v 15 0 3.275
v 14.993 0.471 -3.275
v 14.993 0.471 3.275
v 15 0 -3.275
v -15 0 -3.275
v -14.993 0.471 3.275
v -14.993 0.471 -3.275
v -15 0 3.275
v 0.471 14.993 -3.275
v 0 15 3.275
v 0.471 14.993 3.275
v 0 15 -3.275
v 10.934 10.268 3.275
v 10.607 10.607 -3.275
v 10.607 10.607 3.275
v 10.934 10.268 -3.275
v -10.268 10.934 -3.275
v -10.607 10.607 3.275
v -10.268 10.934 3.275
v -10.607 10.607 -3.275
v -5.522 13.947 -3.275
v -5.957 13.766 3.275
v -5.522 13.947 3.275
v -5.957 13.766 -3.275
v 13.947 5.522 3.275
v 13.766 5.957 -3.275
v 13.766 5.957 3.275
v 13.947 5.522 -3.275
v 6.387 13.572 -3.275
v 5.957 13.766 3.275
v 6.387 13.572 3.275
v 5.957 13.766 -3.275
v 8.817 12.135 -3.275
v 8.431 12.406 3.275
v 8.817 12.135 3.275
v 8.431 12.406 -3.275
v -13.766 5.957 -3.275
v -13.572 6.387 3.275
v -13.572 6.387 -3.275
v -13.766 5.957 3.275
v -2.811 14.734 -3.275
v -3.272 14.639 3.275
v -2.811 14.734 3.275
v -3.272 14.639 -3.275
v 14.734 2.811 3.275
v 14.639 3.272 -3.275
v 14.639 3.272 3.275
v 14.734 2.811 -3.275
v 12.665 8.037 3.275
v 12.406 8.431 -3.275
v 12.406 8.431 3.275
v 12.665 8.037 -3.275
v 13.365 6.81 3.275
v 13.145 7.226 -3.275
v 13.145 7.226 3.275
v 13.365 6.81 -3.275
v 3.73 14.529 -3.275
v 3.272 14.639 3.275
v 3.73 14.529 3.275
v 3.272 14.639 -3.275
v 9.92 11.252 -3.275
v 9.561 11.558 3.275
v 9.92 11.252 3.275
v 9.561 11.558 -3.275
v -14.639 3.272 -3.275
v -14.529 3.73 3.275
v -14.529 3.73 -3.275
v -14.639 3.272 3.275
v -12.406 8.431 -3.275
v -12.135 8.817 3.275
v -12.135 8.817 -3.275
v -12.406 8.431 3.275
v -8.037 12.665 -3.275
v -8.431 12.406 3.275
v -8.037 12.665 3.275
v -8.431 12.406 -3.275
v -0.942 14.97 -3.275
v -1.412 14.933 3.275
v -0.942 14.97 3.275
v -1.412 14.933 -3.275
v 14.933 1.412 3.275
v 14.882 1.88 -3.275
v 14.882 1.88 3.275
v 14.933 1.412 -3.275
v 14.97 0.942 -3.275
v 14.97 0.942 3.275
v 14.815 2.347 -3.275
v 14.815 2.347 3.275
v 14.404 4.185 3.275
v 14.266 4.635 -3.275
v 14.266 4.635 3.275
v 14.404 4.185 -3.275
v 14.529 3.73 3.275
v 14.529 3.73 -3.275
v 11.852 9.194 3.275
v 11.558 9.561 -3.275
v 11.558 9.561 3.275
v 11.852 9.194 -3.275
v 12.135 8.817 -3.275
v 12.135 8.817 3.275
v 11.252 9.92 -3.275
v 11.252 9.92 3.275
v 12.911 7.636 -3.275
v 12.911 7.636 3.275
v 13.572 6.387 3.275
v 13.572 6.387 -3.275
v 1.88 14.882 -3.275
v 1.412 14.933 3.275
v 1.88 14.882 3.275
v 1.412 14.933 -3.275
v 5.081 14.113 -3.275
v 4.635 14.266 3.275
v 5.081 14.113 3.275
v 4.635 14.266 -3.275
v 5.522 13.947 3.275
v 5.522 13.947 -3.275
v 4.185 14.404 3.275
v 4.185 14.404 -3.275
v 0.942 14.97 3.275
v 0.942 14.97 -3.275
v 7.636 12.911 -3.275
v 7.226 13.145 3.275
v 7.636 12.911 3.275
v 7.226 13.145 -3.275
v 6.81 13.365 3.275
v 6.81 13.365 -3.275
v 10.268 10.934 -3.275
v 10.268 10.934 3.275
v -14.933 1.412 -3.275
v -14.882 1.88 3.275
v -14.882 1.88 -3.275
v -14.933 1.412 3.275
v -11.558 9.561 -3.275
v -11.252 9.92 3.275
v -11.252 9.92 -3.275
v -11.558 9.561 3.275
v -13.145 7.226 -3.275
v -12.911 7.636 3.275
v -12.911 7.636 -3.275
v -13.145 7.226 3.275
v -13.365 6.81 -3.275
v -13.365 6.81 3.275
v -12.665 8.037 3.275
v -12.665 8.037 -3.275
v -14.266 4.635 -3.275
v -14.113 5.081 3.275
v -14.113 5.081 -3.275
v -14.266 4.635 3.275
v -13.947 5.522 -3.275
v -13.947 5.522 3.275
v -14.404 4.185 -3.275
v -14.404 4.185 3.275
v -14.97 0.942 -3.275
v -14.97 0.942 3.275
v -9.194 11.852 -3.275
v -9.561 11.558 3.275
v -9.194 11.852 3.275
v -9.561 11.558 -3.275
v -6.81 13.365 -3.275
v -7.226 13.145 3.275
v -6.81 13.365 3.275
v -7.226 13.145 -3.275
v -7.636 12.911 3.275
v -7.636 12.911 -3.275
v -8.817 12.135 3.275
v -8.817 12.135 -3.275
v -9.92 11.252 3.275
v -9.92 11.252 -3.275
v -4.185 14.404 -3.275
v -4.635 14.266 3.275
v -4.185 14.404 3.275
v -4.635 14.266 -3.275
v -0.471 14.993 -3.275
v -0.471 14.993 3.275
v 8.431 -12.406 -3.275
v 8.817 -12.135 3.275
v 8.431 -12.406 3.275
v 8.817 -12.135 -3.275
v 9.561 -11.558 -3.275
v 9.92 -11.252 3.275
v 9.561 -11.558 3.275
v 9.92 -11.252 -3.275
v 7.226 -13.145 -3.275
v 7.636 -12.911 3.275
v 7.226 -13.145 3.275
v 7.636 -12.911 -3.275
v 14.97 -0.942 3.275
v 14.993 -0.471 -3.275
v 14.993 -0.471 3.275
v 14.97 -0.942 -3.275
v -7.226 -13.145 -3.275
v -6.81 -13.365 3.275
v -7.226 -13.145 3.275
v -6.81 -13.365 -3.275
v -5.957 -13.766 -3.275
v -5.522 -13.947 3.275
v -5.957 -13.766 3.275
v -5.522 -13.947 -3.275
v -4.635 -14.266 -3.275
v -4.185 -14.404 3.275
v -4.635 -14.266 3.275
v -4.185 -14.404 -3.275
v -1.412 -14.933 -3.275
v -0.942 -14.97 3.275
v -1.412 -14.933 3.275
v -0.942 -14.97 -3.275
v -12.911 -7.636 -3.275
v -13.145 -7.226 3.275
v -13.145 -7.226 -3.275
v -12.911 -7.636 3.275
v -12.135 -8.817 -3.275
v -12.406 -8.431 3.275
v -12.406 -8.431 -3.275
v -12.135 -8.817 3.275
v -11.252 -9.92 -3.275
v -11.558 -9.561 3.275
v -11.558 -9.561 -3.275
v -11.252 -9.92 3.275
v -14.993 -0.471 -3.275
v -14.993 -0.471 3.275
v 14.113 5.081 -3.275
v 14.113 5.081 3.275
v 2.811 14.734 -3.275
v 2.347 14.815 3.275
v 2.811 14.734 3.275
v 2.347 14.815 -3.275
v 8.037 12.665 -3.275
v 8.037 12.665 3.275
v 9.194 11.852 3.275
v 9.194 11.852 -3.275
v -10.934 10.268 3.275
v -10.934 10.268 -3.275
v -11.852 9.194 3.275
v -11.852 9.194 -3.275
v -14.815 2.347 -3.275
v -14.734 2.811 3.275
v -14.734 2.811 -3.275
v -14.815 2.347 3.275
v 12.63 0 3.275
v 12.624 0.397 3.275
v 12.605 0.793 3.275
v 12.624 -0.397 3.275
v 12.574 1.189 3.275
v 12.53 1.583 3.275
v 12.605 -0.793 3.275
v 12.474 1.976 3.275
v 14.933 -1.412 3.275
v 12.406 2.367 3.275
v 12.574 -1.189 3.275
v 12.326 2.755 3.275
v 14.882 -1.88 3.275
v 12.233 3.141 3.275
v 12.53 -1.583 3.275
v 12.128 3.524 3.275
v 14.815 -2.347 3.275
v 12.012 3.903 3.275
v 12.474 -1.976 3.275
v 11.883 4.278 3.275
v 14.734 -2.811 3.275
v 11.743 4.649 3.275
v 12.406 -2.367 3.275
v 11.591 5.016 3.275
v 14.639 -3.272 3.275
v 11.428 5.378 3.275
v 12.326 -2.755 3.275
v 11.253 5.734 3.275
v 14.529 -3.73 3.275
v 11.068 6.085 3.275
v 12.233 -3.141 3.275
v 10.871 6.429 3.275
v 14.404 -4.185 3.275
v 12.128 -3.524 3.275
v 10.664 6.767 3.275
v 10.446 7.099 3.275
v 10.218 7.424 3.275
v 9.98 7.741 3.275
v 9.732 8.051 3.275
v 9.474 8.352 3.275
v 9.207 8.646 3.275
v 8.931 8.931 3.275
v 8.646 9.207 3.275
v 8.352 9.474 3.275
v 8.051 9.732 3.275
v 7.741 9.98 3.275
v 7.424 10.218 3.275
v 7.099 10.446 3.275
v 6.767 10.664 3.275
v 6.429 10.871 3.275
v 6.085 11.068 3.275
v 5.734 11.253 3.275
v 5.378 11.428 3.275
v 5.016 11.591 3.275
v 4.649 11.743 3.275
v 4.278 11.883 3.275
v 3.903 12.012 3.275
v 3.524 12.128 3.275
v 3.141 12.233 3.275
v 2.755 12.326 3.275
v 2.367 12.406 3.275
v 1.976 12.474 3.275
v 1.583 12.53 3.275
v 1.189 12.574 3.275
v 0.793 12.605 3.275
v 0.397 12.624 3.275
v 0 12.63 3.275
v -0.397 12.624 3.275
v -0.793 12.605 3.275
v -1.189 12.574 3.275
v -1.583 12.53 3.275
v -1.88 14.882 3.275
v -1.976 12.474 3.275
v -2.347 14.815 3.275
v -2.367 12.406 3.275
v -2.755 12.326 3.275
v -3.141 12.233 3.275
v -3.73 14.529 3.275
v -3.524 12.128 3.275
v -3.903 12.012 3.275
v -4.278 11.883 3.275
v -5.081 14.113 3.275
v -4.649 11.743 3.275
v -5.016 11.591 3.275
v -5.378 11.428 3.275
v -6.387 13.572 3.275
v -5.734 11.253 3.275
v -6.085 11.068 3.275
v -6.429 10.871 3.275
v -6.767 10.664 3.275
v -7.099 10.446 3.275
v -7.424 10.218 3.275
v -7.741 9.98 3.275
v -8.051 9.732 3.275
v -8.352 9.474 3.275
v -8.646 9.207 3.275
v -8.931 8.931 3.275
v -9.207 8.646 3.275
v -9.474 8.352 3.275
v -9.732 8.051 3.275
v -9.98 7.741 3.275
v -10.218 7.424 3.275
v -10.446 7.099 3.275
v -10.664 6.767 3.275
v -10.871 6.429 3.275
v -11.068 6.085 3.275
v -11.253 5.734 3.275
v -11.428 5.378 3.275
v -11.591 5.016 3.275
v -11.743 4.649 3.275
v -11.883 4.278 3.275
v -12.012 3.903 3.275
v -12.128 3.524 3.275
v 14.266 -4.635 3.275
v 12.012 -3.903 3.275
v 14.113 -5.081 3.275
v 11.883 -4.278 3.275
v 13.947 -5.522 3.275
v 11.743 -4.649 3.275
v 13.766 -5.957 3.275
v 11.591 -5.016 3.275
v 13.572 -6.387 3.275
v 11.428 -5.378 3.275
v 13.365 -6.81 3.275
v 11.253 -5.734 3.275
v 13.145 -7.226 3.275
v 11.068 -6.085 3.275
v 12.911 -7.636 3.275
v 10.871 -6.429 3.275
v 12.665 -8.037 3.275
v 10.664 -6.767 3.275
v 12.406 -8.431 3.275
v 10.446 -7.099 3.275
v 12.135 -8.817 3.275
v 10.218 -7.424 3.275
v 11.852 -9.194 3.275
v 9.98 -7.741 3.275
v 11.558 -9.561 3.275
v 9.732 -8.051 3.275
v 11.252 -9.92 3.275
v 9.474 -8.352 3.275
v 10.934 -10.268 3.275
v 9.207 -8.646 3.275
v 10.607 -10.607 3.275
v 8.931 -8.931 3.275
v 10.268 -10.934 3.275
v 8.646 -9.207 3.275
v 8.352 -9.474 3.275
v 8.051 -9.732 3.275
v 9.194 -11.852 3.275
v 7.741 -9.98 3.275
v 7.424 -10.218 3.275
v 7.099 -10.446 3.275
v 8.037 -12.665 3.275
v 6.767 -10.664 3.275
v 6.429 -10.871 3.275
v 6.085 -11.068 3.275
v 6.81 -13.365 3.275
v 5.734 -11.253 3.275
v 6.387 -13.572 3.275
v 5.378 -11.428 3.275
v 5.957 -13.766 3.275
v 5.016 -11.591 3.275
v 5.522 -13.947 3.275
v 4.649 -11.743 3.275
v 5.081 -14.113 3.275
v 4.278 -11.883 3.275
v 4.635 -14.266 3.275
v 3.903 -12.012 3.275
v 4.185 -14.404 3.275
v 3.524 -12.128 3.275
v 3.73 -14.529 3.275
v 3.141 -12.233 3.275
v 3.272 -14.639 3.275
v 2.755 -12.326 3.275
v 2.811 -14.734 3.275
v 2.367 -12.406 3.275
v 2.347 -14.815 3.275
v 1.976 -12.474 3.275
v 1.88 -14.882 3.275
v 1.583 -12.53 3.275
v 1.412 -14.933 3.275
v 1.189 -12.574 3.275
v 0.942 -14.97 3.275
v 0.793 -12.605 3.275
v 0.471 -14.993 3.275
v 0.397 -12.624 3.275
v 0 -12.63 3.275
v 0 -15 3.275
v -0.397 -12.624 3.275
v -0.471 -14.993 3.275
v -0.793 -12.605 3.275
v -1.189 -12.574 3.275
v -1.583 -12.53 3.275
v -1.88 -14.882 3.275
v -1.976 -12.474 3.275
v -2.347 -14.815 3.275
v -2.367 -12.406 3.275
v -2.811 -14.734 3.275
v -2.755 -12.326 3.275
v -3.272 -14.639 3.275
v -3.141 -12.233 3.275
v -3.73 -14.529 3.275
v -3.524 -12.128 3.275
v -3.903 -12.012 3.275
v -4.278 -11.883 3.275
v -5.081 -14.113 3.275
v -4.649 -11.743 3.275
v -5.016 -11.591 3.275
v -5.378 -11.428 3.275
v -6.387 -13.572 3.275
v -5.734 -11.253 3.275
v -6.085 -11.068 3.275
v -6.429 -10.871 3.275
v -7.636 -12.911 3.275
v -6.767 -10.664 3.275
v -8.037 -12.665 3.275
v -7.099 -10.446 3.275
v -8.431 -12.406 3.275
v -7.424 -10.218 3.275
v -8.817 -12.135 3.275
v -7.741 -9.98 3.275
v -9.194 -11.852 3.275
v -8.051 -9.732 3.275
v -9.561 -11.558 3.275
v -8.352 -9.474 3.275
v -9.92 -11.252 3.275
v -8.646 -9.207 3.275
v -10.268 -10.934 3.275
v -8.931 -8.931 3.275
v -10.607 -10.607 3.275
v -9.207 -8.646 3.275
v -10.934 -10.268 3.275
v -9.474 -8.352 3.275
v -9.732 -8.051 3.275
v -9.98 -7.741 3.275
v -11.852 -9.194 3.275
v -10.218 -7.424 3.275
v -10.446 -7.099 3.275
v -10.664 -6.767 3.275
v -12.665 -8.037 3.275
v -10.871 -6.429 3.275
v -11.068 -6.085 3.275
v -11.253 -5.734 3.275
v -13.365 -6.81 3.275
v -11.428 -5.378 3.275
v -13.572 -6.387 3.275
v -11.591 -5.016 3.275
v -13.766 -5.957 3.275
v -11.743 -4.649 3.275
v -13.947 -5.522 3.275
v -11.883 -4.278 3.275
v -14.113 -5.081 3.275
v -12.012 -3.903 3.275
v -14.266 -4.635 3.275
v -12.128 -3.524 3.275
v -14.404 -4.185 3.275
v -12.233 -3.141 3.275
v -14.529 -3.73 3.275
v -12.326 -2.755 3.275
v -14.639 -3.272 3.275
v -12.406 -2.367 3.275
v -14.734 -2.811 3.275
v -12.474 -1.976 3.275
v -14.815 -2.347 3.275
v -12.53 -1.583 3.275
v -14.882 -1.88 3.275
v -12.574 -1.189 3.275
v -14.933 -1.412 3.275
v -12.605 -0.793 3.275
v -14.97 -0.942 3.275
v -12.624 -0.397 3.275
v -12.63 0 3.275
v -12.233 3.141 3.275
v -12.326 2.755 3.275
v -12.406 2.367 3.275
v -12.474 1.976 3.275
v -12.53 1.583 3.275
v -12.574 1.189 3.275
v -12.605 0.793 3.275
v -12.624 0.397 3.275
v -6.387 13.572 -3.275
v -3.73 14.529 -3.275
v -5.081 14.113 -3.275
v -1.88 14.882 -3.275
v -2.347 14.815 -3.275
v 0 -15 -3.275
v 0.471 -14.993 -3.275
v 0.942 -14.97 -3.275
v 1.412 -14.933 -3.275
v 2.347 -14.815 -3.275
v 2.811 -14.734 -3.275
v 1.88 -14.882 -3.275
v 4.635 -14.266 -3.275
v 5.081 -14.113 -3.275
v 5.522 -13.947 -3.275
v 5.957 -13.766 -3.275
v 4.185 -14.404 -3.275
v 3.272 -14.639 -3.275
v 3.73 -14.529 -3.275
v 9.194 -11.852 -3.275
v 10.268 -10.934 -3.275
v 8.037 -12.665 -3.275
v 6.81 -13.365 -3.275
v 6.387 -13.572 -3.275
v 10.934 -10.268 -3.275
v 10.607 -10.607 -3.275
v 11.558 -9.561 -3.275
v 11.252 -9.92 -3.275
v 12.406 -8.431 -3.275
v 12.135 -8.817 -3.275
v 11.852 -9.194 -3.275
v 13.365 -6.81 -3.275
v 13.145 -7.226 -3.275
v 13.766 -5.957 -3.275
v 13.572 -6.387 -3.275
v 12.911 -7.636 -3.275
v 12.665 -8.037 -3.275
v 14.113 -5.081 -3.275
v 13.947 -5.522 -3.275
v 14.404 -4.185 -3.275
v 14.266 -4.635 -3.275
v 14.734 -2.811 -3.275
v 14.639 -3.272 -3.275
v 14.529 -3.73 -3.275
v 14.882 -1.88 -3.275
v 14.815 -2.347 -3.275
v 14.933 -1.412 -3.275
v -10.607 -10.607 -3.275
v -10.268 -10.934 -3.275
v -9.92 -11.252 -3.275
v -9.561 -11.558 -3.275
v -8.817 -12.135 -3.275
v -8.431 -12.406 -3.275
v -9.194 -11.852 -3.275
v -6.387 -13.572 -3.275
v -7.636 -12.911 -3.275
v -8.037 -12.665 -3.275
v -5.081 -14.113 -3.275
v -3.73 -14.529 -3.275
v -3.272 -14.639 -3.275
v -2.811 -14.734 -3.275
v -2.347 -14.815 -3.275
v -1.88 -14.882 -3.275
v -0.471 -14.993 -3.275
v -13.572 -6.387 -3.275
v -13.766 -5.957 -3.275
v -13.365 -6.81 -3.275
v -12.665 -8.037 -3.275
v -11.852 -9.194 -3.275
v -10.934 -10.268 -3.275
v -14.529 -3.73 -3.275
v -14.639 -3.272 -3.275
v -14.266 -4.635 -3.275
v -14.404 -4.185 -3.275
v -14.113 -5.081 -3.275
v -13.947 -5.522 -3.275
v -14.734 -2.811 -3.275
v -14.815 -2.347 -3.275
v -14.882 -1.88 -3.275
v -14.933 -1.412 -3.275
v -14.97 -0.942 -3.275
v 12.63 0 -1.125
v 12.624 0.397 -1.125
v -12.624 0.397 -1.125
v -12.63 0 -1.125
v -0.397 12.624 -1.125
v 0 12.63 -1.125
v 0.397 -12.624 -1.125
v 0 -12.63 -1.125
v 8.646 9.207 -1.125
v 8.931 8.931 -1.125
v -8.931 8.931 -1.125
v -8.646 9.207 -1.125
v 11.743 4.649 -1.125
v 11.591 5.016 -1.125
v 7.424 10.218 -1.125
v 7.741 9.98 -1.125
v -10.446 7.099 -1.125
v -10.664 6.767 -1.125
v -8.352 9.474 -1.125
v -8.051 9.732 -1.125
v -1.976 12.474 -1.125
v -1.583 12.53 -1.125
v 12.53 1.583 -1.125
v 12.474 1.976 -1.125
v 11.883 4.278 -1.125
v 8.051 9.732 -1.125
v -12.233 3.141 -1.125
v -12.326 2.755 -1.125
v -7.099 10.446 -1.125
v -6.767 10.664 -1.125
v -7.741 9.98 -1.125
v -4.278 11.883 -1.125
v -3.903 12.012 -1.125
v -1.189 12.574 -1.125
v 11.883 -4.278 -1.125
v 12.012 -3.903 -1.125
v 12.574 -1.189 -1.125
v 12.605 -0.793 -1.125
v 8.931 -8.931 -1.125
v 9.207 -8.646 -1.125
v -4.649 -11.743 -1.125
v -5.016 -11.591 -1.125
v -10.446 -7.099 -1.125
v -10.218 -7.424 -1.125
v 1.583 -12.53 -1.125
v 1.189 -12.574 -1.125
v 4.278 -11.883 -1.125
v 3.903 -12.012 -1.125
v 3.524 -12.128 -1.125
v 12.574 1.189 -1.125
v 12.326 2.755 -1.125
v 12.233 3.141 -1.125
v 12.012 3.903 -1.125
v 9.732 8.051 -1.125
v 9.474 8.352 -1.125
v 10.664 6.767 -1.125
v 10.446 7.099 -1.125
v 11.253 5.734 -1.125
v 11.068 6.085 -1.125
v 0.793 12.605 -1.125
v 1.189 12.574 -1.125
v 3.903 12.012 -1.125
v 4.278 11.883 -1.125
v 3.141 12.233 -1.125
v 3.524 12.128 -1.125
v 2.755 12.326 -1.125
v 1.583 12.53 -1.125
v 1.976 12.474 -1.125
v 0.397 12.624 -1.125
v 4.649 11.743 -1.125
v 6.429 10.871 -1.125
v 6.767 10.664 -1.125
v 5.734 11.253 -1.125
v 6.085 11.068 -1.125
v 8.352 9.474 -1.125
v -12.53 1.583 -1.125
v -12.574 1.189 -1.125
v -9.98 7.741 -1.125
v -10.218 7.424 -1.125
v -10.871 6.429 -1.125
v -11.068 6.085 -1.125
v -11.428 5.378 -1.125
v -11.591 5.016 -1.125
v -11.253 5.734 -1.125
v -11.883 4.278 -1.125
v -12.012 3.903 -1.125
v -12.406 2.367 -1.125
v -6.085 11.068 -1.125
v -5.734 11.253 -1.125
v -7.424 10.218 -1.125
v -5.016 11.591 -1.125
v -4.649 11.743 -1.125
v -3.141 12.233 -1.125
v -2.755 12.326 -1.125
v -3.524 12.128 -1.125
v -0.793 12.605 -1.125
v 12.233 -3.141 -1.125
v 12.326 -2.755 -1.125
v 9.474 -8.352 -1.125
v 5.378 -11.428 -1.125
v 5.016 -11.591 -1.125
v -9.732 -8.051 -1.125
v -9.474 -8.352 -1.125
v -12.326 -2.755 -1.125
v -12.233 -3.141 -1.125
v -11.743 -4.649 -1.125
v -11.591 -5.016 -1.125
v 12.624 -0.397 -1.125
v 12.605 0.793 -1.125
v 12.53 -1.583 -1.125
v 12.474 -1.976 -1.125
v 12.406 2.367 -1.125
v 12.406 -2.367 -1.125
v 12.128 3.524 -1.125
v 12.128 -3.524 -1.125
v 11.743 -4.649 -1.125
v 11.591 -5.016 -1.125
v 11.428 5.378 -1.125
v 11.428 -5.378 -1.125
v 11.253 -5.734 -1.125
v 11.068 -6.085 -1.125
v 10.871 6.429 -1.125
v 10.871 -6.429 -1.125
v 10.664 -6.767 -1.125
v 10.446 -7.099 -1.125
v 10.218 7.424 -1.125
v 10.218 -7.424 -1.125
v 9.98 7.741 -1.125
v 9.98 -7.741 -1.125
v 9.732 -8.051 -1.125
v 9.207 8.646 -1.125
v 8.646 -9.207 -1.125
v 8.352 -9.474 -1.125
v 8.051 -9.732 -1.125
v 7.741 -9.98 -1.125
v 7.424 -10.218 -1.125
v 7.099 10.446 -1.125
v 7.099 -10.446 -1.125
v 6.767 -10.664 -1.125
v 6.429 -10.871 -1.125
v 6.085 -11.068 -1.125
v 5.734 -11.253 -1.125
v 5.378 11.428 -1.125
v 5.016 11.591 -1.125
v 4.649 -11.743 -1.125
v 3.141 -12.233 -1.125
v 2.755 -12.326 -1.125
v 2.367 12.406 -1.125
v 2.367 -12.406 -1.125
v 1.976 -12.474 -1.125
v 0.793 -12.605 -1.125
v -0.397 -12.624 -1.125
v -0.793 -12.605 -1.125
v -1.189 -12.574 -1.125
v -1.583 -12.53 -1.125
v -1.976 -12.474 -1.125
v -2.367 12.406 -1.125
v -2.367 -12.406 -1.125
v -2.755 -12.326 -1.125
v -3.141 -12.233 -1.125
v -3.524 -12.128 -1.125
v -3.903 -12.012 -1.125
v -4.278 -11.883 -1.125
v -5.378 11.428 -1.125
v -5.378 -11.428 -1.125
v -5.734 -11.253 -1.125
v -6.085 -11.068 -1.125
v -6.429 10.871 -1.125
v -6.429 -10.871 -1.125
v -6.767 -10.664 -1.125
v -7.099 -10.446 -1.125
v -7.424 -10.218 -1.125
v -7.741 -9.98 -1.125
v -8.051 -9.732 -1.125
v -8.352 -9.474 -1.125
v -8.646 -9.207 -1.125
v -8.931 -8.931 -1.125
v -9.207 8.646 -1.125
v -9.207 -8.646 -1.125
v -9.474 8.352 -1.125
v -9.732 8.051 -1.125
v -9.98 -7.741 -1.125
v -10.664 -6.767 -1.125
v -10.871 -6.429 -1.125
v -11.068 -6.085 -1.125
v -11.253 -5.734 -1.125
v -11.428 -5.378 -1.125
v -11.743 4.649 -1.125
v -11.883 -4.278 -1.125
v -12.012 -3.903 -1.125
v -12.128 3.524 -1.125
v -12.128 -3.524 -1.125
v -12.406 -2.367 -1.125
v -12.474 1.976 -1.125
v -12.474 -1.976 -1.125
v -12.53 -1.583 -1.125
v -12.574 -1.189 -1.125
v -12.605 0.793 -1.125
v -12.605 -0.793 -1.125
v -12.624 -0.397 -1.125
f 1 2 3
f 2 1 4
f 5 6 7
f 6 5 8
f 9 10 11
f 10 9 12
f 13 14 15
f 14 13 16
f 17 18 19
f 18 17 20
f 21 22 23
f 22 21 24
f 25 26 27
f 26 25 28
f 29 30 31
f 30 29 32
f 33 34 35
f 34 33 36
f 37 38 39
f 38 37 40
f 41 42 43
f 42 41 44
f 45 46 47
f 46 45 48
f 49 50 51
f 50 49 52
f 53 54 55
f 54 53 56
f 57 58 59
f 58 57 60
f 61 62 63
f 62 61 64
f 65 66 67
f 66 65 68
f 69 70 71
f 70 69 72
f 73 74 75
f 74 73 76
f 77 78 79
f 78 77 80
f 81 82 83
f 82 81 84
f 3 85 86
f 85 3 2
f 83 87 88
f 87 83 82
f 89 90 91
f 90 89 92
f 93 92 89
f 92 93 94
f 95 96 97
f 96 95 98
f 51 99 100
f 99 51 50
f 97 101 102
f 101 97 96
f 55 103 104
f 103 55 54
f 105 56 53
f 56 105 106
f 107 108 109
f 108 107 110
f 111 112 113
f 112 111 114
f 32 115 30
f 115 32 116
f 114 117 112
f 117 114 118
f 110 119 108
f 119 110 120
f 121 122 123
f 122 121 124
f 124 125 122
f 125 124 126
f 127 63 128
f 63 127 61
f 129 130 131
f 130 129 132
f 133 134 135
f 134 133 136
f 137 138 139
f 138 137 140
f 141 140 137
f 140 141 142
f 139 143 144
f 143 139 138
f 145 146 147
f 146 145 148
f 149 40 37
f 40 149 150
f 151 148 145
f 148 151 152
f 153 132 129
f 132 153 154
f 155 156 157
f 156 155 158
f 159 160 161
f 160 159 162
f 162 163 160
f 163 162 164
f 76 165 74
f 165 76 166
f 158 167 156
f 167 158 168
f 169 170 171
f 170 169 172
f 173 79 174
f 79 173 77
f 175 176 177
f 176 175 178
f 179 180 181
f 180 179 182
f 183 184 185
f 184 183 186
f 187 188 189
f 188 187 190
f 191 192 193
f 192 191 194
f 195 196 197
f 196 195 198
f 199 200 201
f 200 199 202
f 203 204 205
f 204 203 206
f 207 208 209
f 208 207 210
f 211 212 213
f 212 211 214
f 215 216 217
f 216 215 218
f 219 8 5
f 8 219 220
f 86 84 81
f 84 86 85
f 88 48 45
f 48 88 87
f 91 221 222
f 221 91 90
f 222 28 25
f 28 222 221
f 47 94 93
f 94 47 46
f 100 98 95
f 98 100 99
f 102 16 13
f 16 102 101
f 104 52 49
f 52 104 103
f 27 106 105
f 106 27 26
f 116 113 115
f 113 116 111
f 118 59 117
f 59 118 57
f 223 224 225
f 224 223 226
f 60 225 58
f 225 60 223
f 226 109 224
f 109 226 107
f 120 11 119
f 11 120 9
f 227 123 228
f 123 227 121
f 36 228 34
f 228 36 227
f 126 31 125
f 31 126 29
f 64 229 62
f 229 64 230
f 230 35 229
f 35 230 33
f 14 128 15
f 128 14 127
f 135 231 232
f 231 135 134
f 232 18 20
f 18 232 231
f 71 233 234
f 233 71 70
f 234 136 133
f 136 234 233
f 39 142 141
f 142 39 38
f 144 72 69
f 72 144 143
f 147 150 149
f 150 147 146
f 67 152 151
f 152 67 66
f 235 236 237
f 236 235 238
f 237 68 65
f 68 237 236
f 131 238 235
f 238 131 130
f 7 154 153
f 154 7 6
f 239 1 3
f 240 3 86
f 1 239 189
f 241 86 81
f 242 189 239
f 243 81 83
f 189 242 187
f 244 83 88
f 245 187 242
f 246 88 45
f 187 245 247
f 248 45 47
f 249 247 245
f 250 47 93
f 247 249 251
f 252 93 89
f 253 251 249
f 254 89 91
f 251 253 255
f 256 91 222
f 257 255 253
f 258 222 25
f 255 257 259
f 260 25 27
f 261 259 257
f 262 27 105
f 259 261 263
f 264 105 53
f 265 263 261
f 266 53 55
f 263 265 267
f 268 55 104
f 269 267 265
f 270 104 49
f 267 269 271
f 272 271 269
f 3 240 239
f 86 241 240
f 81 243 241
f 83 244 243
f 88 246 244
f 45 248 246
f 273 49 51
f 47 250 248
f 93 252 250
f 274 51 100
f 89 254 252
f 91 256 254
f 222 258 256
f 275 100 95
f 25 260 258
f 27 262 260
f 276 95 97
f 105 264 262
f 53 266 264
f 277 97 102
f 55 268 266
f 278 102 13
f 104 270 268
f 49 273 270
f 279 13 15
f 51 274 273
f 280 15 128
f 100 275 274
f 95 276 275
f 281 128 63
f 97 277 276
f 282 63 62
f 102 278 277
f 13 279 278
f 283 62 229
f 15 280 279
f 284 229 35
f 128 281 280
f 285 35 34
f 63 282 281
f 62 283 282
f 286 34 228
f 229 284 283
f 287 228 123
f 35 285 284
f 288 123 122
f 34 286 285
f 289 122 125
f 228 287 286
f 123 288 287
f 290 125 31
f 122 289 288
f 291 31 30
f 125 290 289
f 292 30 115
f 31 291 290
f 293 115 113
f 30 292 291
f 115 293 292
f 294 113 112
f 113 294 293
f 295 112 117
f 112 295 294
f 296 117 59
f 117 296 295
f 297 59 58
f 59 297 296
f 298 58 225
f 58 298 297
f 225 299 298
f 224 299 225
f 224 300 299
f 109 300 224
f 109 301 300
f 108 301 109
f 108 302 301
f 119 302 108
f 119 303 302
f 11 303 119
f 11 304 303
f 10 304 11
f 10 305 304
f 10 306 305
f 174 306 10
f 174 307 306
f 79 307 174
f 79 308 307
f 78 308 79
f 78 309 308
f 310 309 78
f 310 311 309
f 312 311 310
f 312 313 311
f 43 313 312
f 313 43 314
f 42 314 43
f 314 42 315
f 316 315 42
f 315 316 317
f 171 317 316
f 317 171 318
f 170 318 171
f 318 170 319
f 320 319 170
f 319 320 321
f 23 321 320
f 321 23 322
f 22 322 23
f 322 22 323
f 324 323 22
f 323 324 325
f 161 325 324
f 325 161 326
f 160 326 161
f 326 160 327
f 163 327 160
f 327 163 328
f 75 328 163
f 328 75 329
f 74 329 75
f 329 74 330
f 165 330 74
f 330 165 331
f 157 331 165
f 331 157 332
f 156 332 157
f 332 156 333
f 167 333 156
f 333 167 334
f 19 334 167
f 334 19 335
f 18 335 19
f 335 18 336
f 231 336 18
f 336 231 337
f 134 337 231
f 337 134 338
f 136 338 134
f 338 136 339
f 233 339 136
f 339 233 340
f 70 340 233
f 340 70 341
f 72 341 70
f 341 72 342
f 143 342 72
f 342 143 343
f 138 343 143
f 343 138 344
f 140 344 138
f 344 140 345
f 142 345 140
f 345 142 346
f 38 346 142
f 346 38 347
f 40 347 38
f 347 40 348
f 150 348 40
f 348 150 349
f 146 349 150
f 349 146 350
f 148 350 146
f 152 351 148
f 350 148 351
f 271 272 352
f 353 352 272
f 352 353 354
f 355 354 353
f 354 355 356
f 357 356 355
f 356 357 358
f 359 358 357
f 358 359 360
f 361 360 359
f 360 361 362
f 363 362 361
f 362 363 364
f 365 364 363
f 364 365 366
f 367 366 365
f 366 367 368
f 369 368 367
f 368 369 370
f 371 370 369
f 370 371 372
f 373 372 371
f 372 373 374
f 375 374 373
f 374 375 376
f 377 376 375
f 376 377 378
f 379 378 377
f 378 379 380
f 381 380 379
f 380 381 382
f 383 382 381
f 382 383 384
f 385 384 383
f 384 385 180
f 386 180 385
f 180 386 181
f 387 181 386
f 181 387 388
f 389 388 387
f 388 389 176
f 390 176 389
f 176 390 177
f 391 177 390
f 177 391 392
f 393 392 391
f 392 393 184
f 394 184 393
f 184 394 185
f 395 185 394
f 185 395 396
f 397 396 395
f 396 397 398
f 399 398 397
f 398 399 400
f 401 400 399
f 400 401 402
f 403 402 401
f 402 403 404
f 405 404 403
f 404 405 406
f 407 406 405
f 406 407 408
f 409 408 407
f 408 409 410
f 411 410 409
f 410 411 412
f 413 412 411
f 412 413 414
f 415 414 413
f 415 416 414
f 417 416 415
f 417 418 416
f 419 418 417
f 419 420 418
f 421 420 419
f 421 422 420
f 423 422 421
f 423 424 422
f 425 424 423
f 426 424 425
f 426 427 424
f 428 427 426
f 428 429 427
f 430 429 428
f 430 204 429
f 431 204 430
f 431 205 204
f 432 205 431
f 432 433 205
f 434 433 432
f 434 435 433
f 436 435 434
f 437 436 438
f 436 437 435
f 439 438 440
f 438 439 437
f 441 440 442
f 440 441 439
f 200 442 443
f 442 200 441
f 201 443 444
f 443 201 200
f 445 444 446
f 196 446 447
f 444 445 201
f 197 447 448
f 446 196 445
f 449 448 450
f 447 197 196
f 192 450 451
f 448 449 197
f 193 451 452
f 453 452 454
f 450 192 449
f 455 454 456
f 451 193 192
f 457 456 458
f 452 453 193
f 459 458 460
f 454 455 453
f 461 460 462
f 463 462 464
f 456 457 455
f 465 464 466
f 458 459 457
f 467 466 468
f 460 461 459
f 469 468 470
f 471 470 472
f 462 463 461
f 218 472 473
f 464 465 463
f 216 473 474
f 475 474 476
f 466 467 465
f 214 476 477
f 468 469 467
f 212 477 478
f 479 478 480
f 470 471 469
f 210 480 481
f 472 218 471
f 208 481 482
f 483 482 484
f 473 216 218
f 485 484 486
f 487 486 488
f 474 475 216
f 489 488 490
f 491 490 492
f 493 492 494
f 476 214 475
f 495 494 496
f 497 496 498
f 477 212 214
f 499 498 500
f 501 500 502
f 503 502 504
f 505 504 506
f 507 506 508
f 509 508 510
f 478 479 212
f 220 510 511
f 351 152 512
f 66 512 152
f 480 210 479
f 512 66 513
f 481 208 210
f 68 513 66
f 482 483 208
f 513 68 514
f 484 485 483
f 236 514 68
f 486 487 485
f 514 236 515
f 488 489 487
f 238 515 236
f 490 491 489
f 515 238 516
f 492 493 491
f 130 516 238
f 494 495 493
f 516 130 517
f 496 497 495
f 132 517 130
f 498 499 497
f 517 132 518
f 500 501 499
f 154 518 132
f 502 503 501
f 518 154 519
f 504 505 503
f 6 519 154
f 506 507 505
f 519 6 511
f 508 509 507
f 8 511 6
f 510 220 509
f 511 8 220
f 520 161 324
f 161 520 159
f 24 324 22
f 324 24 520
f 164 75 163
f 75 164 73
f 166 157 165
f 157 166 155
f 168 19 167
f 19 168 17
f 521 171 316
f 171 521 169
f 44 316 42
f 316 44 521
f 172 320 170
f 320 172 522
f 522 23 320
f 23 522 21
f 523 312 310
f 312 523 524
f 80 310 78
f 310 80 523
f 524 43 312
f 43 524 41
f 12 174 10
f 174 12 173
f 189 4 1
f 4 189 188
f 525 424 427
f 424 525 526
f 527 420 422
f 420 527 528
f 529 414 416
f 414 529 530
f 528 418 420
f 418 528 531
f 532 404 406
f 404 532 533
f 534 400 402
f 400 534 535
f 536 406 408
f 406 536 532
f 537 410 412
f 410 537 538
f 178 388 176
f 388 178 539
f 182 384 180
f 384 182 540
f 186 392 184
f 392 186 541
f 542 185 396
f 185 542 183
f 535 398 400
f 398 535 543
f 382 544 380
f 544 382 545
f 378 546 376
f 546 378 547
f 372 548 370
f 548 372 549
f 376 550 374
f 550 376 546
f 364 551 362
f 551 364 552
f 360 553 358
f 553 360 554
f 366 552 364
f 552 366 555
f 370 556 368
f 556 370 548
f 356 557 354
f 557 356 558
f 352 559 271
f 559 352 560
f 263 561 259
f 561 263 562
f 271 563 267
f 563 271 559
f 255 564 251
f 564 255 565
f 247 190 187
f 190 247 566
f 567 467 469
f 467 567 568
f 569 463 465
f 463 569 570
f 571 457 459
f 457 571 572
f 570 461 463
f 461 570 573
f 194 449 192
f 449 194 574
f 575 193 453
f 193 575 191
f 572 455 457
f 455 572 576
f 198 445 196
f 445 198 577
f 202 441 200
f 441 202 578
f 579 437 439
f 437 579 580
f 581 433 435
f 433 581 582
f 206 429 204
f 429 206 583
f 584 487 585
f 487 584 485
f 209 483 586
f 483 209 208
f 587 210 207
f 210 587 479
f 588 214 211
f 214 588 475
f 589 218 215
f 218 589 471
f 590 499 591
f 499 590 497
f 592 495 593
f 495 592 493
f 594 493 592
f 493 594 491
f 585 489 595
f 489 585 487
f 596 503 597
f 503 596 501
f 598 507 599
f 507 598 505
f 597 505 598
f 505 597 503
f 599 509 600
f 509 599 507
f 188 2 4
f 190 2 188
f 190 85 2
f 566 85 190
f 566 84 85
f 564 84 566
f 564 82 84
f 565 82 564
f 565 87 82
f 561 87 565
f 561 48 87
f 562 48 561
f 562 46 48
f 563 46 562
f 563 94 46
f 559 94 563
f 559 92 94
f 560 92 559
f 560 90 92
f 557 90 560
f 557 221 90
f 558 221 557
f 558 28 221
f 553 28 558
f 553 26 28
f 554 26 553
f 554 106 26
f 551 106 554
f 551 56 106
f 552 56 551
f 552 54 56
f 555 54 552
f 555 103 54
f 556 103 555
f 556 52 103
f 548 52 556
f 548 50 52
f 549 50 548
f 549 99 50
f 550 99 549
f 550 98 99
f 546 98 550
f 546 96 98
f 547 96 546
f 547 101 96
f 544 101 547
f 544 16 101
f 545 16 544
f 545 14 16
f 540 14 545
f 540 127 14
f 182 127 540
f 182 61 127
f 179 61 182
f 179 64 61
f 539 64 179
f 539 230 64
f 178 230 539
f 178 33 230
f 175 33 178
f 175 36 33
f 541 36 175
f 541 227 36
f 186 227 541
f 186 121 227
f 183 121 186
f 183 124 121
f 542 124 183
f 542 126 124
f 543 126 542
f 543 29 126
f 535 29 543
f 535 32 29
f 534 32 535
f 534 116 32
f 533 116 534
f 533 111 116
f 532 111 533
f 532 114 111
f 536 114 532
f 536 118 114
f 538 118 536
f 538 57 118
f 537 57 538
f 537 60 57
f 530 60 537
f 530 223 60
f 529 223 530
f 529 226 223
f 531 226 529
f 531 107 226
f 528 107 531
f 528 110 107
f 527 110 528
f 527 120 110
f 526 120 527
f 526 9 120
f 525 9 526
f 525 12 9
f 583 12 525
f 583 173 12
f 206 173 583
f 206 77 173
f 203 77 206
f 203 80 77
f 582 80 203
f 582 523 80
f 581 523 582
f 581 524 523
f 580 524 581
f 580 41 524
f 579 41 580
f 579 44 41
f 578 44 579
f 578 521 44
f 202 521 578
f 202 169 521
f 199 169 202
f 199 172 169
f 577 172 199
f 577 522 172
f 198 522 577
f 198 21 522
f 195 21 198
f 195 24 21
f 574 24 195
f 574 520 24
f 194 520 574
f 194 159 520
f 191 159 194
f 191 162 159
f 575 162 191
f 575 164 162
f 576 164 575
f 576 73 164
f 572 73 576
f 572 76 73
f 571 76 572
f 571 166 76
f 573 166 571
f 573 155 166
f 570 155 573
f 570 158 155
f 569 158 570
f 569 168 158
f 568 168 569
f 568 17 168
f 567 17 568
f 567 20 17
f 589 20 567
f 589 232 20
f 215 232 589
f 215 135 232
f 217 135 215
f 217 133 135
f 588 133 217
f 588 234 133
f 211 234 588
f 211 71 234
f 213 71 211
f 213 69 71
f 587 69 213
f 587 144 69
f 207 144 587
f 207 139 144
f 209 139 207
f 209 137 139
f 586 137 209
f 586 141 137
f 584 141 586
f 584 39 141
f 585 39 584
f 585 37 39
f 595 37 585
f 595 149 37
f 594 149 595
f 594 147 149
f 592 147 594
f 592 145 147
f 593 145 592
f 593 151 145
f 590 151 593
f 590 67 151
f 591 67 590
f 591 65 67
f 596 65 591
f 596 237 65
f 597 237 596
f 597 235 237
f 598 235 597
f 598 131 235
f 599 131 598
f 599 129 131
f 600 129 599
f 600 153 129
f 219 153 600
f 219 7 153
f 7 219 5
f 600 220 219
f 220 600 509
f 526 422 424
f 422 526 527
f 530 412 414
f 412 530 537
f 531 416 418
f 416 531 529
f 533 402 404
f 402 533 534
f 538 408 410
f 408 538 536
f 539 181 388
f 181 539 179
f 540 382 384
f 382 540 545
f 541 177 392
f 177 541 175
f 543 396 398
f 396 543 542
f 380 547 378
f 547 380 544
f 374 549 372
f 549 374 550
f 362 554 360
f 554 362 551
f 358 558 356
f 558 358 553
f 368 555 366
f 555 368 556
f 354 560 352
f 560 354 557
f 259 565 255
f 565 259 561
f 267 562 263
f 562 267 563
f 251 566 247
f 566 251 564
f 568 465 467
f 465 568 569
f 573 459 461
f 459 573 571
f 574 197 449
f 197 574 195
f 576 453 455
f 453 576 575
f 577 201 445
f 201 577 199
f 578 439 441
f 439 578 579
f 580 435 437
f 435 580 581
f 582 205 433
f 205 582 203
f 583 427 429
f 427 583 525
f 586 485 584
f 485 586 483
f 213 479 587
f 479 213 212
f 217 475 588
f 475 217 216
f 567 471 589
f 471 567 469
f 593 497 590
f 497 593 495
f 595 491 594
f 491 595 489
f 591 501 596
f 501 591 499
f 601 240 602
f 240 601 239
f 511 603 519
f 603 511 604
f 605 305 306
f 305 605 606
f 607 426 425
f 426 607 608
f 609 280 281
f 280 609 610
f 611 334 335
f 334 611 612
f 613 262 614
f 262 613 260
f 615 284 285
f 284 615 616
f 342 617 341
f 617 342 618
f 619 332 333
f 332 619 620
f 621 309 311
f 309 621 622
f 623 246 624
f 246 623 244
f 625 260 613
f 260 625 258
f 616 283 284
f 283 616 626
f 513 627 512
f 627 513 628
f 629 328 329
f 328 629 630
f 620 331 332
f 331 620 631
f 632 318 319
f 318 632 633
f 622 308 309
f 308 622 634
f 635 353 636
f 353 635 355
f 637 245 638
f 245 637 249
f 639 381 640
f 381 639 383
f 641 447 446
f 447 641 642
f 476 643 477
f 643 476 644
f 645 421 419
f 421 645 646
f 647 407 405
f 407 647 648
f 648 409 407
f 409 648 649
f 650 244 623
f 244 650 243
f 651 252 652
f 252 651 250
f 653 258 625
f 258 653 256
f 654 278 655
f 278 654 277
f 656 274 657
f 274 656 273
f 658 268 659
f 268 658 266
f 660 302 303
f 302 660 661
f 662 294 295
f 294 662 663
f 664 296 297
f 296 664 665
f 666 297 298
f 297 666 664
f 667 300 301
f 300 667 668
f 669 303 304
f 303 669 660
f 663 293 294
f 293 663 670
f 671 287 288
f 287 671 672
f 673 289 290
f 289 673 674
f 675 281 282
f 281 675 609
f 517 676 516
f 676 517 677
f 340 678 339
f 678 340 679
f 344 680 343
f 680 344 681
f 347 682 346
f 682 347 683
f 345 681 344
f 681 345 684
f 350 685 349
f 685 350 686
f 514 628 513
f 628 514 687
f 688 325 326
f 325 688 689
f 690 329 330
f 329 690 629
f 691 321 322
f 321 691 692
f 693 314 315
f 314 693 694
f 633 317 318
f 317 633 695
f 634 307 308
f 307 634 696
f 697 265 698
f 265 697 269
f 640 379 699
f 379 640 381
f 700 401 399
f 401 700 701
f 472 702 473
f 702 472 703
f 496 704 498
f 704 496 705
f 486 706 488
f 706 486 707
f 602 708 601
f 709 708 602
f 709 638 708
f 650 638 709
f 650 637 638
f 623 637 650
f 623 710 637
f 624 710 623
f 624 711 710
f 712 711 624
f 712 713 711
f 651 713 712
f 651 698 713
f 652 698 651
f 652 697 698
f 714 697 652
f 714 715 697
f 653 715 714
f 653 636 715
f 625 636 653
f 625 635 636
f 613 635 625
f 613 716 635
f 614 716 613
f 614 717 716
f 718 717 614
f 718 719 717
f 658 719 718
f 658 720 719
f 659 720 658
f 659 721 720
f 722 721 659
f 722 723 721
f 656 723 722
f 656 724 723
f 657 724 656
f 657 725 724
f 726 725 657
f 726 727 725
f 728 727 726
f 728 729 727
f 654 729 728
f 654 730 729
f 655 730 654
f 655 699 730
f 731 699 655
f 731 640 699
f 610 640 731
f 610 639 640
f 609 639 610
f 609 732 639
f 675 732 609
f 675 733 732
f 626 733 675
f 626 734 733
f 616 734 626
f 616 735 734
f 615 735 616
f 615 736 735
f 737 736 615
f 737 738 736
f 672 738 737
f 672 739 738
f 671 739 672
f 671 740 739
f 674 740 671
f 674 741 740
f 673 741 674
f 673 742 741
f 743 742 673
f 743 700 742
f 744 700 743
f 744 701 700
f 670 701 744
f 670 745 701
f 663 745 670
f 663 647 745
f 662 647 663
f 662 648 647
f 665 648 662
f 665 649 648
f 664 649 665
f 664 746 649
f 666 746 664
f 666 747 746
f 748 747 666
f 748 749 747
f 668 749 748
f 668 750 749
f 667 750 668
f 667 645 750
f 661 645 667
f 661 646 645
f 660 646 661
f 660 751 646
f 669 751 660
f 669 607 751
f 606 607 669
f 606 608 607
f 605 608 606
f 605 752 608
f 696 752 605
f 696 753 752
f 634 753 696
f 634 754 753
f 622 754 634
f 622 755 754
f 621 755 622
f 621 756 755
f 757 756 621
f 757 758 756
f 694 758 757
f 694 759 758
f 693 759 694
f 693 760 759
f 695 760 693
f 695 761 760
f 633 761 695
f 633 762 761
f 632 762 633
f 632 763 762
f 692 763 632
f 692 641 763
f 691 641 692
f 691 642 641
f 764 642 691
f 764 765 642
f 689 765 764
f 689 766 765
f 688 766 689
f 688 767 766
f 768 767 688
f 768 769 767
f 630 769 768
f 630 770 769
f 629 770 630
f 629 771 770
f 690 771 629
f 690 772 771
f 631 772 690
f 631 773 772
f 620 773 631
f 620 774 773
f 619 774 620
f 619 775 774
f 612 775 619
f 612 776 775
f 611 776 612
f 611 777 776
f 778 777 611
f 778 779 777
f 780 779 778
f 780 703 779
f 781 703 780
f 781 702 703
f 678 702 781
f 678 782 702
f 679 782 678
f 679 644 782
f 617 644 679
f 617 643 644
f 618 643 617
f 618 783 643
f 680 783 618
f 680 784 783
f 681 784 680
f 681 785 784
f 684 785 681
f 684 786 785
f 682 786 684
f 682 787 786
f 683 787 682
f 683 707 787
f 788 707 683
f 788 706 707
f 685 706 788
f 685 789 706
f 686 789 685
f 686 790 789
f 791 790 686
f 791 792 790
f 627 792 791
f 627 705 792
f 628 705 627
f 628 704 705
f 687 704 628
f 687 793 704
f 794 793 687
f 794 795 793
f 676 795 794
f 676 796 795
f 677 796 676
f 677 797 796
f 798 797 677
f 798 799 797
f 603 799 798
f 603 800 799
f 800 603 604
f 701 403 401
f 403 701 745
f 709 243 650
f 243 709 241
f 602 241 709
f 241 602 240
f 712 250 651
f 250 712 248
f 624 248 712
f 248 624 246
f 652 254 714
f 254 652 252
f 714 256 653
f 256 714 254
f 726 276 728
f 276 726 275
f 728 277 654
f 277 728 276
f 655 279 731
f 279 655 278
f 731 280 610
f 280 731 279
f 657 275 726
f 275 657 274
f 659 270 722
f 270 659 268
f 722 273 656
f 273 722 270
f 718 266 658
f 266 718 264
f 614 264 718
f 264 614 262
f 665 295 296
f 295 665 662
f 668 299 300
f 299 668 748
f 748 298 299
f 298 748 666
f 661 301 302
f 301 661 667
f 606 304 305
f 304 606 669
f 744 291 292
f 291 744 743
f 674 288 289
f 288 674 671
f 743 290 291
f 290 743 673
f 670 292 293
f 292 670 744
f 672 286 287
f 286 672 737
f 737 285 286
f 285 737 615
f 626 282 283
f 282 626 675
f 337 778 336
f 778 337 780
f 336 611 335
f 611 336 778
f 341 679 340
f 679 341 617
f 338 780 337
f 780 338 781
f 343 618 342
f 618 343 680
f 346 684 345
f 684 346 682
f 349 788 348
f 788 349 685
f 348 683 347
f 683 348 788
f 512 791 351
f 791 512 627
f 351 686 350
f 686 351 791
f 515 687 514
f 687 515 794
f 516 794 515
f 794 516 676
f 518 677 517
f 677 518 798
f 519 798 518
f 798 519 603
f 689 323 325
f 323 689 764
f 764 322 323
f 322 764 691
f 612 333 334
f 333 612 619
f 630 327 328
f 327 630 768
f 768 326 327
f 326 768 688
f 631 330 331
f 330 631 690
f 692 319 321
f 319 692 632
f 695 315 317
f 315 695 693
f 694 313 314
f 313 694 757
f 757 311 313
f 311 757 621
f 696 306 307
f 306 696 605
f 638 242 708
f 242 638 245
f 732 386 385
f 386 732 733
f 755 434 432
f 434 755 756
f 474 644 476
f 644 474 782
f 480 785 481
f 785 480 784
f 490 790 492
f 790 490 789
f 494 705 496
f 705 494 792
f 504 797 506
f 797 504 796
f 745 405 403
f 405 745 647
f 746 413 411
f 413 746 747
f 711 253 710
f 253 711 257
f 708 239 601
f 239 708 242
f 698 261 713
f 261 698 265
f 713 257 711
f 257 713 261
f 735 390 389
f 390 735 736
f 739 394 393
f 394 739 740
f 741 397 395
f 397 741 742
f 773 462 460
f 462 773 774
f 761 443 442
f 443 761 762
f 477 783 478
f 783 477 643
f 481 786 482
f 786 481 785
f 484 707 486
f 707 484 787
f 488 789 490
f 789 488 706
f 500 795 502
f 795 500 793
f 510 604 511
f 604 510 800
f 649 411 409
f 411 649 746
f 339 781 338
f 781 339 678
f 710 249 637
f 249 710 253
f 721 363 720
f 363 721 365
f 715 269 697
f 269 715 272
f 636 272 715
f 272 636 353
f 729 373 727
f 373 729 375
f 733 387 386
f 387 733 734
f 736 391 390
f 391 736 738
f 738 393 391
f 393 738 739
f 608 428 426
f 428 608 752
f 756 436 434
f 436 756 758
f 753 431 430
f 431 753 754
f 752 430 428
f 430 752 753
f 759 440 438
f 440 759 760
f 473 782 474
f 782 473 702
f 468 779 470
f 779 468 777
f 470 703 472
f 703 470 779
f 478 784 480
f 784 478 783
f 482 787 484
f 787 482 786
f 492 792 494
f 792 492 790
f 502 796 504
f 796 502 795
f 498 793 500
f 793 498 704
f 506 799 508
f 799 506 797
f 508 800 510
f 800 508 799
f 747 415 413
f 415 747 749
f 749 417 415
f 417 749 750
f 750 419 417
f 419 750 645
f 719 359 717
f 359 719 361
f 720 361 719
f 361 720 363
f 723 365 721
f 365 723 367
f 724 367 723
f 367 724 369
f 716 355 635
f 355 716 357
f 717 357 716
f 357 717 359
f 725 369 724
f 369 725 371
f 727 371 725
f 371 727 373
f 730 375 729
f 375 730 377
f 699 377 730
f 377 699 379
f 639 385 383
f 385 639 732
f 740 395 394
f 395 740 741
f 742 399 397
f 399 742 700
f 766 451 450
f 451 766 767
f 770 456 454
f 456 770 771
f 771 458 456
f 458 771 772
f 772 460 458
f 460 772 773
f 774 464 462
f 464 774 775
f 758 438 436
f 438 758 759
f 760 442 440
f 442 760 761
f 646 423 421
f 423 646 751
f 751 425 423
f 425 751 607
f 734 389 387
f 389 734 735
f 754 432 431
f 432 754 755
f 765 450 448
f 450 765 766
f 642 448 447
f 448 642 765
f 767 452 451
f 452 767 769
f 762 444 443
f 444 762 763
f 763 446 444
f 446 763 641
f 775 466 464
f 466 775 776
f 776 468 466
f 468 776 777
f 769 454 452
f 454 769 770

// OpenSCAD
module cmount_rear_cap () {
    $fn = 200;
    ID = 25.26;
    OD = 30;
    H = 6.55;
    T = 2.15;
    difference () {
        cylinder(r = OD / 2, h = H, center = true);
        translate([0, 0, T]) cylinder(r = ID / 2, h = H, center = true);
    }
}

cmount_rear_cap();
